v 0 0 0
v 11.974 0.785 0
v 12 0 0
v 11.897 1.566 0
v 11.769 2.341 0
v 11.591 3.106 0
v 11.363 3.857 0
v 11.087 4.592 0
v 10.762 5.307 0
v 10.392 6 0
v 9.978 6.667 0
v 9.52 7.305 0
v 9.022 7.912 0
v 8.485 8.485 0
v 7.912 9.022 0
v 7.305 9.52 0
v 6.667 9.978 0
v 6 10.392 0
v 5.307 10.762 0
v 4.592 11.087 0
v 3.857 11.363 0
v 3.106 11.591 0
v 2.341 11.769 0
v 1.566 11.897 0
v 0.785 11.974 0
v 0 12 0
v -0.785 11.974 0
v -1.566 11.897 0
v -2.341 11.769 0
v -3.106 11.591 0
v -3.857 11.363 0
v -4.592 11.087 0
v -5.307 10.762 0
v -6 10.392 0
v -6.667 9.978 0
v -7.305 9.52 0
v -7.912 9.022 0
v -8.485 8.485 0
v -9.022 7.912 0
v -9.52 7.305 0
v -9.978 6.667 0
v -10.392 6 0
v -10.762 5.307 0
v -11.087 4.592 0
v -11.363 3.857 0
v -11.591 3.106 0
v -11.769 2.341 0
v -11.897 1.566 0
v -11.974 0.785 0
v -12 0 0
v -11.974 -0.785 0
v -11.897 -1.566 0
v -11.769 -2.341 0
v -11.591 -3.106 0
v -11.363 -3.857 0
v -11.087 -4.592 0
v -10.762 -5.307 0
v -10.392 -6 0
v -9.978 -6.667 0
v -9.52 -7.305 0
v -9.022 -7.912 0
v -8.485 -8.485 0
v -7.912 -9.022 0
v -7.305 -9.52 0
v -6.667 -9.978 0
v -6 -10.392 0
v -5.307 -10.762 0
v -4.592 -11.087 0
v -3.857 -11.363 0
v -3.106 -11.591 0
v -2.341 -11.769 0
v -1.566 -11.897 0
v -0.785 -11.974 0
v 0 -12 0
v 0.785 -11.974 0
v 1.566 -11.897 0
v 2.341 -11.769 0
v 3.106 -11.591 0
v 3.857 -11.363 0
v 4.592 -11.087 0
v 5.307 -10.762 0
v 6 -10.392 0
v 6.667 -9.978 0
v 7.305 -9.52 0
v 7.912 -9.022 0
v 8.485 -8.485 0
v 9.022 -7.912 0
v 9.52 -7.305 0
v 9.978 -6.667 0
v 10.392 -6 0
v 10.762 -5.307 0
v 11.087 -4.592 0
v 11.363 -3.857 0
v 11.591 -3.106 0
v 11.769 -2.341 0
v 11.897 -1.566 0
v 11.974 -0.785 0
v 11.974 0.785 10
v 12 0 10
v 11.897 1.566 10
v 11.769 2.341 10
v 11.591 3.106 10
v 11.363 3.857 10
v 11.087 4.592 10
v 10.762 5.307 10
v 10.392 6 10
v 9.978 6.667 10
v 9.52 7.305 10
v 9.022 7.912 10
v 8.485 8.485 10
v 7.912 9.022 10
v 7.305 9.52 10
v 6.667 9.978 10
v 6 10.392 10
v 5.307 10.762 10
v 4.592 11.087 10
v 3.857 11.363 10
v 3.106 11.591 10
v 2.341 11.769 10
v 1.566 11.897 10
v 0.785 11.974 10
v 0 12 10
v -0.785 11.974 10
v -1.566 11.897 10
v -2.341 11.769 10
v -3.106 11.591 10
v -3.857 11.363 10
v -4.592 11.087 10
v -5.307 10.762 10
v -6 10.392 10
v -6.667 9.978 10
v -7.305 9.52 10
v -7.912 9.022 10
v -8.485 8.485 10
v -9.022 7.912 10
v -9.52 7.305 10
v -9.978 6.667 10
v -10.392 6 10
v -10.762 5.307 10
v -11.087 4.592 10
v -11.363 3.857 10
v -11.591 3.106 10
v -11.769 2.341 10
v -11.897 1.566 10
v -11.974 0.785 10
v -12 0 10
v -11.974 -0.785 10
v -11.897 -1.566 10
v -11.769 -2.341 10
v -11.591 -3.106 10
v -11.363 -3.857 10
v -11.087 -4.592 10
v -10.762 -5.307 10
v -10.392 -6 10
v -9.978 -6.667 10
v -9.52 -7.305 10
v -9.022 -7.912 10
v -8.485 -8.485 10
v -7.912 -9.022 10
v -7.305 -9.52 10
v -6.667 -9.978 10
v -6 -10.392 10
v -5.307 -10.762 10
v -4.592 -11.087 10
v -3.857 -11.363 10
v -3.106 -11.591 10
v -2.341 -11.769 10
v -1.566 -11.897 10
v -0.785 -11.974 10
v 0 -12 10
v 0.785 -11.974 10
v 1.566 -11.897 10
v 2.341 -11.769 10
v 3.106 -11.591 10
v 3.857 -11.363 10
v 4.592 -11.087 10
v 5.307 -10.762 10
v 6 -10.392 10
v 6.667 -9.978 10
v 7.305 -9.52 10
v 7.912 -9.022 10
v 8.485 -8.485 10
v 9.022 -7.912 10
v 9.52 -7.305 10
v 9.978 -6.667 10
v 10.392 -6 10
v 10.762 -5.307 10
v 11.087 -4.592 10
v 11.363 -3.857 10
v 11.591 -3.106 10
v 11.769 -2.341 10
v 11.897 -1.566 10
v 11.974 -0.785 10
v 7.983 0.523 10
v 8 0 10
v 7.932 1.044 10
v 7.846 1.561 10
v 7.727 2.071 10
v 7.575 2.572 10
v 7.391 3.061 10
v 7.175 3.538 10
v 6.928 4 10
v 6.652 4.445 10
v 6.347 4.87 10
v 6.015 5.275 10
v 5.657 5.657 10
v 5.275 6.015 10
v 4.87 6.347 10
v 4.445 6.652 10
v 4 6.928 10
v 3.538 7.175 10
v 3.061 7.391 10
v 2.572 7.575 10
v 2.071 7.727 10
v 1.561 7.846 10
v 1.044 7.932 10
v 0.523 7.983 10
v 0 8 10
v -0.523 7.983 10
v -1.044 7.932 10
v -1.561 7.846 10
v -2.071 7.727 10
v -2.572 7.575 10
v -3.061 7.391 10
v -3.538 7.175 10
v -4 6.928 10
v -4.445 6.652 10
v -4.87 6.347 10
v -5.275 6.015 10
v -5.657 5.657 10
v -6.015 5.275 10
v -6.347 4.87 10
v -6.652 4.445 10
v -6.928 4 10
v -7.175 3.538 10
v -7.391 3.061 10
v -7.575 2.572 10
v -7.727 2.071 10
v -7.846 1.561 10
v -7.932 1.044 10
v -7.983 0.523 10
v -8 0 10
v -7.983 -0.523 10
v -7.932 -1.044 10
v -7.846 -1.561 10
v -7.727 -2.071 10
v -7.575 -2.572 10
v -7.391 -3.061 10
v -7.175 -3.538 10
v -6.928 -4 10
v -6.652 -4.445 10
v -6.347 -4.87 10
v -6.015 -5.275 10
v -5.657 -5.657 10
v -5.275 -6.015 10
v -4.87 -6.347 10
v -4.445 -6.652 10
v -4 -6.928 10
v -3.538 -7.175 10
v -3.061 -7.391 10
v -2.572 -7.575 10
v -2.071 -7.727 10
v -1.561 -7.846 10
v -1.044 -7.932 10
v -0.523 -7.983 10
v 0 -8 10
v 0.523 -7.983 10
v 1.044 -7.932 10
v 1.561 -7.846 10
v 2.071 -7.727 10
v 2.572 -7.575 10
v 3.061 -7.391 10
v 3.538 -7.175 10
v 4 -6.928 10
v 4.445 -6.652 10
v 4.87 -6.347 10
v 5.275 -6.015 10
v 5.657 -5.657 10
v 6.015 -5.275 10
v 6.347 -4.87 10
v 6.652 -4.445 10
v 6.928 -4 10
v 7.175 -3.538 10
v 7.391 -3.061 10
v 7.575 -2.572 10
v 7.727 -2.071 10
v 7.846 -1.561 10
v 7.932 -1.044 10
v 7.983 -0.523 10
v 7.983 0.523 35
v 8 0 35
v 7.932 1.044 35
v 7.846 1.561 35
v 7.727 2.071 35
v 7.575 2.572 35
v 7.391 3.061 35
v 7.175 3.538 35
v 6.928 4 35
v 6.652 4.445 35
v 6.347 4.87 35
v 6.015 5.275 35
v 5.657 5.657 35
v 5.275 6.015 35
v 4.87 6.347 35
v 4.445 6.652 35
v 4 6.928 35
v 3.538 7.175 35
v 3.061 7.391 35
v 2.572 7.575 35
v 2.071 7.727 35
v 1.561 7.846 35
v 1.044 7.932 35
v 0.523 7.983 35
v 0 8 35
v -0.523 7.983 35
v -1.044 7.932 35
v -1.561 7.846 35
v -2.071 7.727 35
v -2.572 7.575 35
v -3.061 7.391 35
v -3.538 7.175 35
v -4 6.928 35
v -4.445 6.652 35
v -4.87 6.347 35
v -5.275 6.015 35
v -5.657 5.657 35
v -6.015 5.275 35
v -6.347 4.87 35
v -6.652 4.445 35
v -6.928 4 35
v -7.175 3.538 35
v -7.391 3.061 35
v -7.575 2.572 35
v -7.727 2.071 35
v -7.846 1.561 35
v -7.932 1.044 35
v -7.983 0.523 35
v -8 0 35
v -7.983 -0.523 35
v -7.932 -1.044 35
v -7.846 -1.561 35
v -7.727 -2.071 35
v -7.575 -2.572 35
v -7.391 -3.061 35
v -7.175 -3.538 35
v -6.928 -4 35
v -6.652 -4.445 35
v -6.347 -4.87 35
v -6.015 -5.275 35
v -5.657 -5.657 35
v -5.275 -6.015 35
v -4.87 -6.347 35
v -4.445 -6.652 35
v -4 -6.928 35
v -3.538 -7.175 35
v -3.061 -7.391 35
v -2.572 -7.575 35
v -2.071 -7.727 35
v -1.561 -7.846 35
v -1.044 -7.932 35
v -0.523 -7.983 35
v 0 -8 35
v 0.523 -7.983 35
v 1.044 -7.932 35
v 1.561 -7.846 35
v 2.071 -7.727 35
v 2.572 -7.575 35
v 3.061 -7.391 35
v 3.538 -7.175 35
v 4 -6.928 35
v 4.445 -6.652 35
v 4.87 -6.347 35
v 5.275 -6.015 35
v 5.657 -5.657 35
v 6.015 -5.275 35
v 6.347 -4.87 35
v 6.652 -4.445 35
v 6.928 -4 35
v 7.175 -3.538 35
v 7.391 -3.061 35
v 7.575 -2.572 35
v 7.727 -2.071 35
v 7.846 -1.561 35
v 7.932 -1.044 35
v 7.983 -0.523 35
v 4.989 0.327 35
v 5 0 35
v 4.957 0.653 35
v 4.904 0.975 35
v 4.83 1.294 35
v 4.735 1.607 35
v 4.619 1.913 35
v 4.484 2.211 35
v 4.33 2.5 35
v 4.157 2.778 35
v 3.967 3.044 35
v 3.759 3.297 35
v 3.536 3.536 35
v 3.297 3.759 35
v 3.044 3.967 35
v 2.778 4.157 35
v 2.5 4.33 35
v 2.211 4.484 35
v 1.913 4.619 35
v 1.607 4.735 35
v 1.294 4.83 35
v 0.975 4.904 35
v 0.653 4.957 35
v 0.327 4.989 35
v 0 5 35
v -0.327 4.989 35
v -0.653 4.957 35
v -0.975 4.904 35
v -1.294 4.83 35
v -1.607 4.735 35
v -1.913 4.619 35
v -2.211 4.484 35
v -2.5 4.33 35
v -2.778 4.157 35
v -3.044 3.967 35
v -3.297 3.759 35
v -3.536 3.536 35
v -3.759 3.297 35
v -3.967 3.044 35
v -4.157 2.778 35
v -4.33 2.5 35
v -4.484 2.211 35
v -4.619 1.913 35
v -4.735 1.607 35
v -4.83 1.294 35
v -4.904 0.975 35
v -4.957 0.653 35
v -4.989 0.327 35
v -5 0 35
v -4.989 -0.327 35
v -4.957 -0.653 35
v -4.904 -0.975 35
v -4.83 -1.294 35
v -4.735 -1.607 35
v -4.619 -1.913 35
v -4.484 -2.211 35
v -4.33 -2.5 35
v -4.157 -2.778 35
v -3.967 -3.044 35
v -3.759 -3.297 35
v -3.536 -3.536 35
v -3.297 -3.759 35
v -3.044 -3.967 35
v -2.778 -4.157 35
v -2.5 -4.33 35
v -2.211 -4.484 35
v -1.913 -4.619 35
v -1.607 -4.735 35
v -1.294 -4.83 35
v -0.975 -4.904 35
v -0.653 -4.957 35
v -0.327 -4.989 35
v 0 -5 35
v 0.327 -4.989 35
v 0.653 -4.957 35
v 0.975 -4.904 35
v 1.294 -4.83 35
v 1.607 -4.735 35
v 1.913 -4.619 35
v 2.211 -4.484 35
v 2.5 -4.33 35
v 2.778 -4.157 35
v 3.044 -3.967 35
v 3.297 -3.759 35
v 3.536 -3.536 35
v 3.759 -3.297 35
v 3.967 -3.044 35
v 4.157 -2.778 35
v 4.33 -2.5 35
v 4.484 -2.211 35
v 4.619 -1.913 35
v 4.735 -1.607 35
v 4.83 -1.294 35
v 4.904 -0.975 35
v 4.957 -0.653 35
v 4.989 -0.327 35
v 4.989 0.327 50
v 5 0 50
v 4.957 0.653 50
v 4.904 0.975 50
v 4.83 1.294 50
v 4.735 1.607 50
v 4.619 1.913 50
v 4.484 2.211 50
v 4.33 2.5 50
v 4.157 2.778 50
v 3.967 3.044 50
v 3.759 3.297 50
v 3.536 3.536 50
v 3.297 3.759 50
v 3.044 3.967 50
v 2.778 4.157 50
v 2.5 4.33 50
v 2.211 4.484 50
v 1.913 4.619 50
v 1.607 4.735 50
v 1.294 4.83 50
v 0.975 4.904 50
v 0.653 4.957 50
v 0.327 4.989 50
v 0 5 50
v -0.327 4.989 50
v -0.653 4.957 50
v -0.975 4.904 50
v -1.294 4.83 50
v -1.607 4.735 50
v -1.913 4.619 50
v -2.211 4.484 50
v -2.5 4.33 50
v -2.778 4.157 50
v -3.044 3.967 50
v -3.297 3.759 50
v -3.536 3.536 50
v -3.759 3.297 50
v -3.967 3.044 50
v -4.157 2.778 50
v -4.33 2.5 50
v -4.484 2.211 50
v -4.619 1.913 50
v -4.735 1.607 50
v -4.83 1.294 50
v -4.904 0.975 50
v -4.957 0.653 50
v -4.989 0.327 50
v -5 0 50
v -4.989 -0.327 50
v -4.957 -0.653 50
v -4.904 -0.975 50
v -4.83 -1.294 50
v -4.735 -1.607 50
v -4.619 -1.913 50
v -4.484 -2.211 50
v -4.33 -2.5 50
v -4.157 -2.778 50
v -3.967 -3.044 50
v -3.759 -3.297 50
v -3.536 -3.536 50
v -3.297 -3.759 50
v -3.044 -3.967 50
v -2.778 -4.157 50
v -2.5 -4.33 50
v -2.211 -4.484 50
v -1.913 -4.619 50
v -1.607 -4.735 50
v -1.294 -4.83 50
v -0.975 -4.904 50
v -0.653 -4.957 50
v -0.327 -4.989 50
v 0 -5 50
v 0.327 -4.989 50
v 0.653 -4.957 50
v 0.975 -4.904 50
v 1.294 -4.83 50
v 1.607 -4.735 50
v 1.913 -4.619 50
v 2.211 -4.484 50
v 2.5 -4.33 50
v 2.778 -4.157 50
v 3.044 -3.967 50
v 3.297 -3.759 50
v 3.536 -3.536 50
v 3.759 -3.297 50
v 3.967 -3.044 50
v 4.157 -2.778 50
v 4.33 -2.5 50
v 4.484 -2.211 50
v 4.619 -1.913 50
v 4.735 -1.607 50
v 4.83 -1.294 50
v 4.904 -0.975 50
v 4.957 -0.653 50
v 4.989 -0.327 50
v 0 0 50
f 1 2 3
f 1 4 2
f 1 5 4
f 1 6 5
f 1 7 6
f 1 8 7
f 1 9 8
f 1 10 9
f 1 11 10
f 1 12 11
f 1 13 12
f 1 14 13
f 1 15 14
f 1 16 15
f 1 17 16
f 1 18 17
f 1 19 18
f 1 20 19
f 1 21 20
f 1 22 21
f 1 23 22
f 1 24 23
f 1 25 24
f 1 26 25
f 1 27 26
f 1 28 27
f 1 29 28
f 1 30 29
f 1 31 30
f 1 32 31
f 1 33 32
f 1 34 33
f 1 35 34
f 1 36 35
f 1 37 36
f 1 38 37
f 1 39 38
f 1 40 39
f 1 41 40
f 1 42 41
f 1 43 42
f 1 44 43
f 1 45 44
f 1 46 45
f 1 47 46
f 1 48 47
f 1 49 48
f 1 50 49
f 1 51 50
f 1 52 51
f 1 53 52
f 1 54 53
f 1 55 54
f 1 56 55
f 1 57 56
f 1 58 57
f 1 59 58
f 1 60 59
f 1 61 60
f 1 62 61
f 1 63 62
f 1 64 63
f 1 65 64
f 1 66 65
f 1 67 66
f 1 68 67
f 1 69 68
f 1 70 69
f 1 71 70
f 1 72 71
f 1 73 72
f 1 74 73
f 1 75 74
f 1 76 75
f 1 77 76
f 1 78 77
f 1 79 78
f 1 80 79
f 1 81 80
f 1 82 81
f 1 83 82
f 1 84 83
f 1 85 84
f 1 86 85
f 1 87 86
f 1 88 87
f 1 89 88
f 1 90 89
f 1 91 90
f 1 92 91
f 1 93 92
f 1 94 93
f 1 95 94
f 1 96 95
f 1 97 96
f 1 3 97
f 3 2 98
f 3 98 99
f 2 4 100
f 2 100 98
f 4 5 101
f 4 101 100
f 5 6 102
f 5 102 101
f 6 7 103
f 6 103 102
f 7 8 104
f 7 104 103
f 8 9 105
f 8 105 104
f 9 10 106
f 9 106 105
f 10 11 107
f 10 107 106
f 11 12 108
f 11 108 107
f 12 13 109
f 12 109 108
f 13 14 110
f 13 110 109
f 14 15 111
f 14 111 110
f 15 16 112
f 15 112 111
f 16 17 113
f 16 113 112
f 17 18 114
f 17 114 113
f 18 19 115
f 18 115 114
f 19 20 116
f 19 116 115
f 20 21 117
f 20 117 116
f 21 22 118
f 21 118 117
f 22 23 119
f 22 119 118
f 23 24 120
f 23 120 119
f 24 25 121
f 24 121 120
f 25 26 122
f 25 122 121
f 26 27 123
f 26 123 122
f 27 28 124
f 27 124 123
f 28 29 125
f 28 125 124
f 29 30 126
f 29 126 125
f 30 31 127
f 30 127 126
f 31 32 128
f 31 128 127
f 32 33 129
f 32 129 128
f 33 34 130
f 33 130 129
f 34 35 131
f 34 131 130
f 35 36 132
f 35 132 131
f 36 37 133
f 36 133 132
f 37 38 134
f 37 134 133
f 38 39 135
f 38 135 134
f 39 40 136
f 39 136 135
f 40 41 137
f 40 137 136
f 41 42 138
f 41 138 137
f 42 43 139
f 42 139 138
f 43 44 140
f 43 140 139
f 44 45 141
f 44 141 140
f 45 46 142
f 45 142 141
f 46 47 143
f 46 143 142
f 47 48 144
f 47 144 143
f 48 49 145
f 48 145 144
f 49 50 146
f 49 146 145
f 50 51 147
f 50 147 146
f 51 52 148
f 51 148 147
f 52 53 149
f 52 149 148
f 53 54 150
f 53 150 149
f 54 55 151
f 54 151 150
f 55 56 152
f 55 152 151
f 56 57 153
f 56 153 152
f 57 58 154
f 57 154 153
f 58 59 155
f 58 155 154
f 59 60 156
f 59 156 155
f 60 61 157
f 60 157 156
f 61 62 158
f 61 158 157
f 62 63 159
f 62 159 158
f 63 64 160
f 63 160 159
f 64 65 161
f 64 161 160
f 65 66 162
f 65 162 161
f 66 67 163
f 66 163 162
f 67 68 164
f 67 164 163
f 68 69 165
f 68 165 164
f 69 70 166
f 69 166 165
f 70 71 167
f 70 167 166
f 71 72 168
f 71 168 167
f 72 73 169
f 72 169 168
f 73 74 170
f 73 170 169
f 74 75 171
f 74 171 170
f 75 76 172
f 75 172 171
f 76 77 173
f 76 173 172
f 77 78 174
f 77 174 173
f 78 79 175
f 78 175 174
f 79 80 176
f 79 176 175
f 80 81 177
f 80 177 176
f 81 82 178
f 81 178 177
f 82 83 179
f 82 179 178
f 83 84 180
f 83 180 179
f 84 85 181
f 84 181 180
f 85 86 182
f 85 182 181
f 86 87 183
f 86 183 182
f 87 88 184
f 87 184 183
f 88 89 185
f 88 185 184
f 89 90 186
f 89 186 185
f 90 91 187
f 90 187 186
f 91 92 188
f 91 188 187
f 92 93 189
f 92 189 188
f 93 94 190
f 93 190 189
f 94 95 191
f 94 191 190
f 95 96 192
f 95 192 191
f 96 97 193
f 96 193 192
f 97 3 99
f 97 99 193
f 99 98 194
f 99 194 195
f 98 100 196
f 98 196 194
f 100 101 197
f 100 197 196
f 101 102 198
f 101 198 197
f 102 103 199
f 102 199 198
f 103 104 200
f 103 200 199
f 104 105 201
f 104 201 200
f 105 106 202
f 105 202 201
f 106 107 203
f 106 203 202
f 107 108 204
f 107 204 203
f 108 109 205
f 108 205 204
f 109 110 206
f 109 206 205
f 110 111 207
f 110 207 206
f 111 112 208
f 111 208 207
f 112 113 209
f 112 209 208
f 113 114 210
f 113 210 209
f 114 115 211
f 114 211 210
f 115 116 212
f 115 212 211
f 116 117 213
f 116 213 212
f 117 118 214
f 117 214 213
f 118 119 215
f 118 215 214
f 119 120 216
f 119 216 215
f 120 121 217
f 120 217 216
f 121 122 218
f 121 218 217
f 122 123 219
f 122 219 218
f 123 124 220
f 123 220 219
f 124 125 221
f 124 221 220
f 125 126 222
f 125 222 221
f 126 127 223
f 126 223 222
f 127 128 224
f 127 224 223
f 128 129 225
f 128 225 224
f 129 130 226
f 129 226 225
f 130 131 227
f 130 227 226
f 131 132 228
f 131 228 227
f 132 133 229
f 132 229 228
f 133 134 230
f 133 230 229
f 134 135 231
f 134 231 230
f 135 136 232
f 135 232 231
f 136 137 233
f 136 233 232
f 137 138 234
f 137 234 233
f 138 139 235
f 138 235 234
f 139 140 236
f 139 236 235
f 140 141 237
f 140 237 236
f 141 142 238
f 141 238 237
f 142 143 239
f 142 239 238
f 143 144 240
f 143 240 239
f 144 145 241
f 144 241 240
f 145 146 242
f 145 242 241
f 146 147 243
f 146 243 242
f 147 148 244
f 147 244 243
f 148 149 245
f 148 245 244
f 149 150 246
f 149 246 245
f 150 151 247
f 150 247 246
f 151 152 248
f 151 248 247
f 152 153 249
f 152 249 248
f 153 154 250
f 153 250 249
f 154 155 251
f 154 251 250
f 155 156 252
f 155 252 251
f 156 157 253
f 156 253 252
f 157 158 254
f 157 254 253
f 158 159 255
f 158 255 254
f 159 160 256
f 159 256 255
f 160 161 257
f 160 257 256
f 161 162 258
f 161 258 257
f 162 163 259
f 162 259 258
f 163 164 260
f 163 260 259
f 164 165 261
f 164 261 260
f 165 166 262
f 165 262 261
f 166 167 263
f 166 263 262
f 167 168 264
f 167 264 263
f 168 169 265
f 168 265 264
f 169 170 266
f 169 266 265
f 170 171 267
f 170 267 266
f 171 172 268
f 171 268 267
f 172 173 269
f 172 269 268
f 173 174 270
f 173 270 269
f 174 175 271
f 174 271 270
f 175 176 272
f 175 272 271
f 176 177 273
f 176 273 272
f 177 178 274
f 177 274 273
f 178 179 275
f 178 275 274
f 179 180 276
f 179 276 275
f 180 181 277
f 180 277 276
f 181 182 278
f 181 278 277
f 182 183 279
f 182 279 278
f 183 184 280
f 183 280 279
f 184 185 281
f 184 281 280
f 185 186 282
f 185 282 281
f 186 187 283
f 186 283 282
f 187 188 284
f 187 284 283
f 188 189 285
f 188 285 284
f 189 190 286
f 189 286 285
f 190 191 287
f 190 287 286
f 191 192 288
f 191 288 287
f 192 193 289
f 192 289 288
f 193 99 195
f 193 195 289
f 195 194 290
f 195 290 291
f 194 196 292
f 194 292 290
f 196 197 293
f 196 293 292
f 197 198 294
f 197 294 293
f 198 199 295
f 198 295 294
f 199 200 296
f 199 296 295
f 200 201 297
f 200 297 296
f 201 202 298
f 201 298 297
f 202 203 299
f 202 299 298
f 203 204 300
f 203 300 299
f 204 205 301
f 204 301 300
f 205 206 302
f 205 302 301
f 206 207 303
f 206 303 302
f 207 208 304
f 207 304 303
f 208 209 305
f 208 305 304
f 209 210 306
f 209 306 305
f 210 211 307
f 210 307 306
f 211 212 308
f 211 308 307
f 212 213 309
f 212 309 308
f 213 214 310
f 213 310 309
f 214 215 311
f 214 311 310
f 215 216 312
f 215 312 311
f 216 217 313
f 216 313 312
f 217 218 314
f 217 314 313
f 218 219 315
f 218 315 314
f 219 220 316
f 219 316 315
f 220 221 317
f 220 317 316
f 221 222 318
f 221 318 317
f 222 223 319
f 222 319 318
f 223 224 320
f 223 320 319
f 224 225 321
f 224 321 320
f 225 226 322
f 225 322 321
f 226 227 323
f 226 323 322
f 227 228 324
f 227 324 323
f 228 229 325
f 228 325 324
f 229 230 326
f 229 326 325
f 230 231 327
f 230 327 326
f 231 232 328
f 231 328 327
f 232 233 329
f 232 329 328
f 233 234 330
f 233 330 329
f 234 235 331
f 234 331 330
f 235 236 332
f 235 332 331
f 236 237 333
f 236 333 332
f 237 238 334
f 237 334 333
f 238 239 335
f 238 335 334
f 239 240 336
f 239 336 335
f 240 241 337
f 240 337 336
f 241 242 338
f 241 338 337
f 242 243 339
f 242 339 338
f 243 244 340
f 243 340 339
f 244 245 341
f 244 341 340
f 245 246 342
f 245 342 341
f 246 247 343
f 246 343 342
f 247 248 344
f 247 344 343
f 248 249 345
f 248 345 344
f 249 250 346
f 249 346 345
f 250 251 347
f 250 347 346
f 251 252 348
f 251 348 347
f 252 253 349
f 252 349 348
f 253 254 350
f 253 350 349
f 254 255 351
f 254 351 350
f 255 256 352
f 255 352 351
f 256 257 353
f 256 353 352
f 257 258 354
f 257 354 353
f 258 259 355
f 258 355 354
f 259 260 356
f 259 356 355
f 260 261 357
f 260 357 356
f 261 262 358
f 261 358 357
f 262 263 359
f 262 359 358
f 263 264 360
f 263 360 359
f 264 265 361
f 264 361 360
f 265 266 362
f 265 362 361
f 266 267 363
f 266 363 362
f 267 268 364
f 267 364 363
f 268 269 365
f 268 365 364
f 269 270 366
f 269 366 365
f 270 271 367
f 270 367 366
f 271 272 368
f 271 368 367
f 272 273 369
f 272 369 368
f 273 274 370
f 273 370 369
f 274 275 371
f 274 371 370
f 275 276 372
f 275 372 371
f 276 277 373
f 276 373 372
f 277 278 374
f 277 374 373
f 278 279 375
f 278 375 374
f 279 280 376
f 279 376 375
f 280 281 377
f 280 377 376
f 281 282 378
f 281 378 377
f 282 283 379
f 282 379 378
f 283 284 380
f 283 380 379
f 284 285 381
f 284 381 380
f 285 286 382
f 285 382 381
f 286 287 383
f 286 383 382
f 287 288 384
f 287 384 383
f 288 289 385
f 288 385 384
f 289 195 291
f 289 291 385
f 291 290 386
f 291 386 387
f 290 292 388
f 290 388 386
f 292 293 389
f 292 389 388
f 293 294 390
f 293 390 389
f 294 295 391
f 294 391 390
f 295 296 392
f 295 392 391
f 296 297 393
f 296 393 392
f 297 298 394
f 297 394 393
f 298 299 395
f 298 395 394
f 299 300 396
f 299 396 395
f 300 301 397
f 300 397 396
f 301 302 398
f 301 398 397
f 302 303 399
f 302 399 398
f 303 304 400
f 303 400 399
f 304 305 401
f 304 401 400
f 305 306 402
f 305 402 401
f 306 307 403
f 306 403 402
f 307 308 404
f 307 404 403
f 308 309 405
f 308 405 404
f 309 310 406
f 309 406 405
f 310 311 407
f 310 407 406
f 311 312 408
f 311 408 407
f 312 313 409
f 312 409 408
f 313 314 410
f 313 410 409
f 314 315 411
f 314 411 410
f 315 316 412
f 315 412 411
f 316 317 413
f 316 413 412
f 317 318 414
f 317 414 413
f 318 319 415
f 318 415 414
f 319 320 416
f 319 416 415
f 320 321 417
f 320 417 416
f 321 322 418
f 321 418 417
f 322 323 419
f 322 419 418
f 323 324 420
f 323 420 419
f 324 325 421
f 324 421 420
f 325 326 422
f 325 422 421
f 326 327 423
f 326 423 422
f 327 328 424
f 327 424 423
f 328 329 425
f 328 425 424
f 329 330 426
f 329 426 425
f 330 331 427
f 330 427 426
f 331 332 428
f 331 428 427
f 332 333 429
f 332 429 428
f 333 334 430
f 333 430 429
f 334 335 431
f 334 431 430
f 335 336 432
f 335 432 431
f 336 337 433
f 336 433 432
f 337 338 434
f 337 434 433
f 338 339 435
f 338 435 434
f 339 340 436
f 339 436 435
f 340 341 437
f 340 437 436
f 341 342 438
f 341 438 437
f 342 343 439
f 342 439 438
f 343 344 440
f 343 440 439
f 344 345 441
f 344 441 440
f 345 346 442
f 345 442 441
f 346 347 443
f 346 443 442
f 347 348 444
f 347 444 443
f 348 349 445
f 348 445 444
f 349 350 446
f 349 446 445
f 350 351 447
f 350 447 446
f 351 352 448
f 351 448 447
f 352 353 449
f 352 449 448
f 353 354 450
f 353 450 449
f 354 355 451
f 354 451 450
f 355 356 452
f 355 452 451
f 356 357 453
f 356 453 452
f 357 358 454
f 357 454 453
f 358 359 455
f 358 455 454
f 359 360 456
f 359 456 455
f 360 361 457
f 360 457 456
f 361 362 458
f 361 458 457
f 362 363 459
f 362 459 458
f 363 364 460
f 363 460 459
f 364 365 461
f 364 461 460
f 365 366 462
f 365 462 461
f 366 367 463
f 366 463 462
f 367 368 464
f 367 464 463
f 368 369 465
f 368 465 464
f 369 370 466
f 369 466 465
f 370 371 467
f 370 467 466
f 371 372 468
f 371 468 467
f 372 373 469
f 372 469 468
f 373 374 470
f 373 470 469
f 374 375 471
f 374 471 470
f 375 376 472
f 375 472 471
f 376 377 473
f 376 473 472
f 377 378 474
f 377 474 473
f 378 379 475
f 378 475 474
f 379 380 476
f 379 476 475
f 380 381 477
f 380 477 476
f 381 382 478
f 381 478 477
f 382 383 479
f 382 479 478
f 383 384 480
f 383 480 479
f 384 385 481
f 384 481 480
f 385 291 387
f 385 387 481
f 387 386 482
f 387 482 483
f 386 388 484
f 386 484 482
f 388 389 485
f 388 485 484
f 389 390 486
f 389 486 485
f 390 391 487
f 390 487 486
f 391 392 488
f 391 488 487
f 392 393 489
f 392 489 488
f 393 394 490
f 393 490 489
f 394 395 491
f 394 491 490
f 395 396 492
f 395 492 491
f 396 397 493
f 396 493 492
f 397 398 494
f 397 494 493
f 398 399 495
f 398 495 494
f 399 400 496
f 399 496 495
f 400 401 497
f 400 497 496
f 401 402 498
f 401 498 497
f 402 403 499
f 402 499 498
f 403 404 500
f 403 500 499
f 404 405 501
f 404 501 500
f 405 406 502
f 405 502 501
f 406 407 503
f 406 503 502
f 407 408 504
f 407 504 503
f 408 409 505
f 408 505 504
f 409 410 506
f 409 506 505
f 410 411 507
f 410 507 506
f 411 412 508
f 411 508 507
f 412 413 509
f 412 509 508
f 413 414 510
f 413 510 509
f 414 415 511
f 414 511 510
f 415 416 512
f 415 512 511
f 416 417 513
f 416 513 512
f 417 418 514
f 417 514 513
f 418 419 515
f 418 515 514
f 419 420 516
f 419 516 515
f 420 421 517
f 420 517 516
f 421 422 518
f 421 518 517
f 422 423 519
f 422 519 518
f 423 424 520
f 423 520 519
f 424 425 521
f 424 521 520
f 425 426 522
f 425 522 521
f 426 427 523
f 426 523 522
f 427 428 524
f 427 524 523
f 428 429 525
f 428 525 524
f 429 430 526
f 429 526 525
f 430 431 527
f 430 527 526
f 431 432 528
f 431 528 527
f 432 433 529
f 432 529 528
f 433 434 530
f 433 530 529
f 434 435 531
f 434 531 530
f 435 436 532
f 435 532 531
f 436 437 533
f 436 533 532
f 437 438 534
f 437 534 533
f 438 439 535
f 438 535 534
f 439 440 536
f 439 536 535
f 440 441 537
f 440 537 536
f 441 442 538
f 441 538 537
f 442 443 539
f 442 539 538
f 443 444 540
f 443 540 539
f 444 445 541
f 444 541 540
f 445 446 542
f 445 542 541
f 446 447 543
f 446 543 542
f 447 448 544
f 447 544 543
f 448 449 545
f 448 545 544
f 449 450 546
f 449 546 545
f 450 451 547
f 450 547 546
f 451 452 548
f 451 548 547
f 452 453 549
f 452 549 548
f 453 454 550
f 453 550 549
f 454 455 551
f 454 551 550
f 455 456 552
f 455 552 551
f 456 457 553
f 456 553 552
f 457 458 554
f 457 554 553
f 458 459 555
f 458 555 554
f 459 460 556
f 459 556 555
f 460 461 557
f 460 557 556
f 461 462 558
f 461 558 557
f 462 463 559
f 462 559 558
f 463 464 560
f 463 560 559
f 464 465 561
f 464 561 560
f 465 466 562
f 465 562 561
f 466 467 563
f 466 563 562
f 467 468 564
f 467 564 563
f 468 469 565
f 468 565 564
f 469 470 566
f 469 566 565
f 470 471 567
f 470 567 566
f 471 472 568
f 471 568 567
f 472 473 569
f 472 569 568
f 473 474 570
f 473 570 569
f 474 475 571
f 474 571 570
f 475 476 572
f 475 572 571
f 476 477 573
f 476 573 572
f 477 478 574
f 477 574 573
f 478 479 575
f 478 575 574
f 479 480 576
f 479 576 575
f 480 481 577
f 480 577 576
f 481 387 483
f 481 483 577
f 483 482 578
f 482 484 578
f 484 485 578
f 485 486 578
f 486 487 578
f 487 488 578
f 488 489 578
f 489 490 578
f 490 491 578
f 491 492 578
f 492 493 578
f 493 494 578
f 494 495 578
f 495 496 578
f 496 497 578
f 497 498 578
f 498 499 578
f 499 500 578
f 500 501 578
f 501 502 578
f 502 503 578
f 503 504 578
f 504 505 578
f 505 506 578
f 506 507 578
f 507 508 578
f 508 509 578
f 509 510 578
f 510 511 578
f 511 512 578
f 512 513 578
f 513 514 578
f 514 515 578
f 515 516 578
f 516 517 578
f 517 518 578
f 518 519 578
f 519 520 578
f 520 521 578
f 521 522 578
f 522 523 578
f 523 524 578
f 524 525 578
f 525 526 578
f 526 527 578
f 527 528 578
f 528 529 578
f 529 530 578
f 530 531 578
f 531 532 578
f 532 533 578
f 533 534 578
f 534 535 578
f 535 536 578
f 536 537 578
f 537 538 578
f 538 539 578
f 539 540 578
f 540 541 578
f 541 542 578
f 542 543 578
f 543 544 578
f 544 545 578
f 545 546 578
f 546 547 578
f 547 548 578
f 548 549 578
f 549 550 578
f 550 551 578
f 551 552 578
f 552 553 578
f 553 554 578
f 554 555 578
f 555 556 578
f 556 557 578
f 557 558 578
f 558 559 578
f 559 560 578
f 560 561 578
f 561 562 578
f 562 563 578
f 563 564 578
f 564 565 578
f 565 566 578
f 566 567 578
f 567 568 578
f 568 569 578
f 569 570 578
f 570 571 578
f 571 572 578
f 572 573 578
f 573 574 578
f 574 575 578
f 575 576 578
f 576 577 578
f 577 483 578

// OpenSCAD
// Original MechIntel educational model. CC0-1.0. Units: mm.
// Not a standardized or load-rated component.
$fn=96;
// Section points: [radius, height], mm. Edit to change the profile.
section=[[0, 0], [12, 0], [12, 10], [8, 10], [8, 35], [5, 35], [5, 50], [0, 50]];
rotate_extrude($fn=96) polygon(points=section);
